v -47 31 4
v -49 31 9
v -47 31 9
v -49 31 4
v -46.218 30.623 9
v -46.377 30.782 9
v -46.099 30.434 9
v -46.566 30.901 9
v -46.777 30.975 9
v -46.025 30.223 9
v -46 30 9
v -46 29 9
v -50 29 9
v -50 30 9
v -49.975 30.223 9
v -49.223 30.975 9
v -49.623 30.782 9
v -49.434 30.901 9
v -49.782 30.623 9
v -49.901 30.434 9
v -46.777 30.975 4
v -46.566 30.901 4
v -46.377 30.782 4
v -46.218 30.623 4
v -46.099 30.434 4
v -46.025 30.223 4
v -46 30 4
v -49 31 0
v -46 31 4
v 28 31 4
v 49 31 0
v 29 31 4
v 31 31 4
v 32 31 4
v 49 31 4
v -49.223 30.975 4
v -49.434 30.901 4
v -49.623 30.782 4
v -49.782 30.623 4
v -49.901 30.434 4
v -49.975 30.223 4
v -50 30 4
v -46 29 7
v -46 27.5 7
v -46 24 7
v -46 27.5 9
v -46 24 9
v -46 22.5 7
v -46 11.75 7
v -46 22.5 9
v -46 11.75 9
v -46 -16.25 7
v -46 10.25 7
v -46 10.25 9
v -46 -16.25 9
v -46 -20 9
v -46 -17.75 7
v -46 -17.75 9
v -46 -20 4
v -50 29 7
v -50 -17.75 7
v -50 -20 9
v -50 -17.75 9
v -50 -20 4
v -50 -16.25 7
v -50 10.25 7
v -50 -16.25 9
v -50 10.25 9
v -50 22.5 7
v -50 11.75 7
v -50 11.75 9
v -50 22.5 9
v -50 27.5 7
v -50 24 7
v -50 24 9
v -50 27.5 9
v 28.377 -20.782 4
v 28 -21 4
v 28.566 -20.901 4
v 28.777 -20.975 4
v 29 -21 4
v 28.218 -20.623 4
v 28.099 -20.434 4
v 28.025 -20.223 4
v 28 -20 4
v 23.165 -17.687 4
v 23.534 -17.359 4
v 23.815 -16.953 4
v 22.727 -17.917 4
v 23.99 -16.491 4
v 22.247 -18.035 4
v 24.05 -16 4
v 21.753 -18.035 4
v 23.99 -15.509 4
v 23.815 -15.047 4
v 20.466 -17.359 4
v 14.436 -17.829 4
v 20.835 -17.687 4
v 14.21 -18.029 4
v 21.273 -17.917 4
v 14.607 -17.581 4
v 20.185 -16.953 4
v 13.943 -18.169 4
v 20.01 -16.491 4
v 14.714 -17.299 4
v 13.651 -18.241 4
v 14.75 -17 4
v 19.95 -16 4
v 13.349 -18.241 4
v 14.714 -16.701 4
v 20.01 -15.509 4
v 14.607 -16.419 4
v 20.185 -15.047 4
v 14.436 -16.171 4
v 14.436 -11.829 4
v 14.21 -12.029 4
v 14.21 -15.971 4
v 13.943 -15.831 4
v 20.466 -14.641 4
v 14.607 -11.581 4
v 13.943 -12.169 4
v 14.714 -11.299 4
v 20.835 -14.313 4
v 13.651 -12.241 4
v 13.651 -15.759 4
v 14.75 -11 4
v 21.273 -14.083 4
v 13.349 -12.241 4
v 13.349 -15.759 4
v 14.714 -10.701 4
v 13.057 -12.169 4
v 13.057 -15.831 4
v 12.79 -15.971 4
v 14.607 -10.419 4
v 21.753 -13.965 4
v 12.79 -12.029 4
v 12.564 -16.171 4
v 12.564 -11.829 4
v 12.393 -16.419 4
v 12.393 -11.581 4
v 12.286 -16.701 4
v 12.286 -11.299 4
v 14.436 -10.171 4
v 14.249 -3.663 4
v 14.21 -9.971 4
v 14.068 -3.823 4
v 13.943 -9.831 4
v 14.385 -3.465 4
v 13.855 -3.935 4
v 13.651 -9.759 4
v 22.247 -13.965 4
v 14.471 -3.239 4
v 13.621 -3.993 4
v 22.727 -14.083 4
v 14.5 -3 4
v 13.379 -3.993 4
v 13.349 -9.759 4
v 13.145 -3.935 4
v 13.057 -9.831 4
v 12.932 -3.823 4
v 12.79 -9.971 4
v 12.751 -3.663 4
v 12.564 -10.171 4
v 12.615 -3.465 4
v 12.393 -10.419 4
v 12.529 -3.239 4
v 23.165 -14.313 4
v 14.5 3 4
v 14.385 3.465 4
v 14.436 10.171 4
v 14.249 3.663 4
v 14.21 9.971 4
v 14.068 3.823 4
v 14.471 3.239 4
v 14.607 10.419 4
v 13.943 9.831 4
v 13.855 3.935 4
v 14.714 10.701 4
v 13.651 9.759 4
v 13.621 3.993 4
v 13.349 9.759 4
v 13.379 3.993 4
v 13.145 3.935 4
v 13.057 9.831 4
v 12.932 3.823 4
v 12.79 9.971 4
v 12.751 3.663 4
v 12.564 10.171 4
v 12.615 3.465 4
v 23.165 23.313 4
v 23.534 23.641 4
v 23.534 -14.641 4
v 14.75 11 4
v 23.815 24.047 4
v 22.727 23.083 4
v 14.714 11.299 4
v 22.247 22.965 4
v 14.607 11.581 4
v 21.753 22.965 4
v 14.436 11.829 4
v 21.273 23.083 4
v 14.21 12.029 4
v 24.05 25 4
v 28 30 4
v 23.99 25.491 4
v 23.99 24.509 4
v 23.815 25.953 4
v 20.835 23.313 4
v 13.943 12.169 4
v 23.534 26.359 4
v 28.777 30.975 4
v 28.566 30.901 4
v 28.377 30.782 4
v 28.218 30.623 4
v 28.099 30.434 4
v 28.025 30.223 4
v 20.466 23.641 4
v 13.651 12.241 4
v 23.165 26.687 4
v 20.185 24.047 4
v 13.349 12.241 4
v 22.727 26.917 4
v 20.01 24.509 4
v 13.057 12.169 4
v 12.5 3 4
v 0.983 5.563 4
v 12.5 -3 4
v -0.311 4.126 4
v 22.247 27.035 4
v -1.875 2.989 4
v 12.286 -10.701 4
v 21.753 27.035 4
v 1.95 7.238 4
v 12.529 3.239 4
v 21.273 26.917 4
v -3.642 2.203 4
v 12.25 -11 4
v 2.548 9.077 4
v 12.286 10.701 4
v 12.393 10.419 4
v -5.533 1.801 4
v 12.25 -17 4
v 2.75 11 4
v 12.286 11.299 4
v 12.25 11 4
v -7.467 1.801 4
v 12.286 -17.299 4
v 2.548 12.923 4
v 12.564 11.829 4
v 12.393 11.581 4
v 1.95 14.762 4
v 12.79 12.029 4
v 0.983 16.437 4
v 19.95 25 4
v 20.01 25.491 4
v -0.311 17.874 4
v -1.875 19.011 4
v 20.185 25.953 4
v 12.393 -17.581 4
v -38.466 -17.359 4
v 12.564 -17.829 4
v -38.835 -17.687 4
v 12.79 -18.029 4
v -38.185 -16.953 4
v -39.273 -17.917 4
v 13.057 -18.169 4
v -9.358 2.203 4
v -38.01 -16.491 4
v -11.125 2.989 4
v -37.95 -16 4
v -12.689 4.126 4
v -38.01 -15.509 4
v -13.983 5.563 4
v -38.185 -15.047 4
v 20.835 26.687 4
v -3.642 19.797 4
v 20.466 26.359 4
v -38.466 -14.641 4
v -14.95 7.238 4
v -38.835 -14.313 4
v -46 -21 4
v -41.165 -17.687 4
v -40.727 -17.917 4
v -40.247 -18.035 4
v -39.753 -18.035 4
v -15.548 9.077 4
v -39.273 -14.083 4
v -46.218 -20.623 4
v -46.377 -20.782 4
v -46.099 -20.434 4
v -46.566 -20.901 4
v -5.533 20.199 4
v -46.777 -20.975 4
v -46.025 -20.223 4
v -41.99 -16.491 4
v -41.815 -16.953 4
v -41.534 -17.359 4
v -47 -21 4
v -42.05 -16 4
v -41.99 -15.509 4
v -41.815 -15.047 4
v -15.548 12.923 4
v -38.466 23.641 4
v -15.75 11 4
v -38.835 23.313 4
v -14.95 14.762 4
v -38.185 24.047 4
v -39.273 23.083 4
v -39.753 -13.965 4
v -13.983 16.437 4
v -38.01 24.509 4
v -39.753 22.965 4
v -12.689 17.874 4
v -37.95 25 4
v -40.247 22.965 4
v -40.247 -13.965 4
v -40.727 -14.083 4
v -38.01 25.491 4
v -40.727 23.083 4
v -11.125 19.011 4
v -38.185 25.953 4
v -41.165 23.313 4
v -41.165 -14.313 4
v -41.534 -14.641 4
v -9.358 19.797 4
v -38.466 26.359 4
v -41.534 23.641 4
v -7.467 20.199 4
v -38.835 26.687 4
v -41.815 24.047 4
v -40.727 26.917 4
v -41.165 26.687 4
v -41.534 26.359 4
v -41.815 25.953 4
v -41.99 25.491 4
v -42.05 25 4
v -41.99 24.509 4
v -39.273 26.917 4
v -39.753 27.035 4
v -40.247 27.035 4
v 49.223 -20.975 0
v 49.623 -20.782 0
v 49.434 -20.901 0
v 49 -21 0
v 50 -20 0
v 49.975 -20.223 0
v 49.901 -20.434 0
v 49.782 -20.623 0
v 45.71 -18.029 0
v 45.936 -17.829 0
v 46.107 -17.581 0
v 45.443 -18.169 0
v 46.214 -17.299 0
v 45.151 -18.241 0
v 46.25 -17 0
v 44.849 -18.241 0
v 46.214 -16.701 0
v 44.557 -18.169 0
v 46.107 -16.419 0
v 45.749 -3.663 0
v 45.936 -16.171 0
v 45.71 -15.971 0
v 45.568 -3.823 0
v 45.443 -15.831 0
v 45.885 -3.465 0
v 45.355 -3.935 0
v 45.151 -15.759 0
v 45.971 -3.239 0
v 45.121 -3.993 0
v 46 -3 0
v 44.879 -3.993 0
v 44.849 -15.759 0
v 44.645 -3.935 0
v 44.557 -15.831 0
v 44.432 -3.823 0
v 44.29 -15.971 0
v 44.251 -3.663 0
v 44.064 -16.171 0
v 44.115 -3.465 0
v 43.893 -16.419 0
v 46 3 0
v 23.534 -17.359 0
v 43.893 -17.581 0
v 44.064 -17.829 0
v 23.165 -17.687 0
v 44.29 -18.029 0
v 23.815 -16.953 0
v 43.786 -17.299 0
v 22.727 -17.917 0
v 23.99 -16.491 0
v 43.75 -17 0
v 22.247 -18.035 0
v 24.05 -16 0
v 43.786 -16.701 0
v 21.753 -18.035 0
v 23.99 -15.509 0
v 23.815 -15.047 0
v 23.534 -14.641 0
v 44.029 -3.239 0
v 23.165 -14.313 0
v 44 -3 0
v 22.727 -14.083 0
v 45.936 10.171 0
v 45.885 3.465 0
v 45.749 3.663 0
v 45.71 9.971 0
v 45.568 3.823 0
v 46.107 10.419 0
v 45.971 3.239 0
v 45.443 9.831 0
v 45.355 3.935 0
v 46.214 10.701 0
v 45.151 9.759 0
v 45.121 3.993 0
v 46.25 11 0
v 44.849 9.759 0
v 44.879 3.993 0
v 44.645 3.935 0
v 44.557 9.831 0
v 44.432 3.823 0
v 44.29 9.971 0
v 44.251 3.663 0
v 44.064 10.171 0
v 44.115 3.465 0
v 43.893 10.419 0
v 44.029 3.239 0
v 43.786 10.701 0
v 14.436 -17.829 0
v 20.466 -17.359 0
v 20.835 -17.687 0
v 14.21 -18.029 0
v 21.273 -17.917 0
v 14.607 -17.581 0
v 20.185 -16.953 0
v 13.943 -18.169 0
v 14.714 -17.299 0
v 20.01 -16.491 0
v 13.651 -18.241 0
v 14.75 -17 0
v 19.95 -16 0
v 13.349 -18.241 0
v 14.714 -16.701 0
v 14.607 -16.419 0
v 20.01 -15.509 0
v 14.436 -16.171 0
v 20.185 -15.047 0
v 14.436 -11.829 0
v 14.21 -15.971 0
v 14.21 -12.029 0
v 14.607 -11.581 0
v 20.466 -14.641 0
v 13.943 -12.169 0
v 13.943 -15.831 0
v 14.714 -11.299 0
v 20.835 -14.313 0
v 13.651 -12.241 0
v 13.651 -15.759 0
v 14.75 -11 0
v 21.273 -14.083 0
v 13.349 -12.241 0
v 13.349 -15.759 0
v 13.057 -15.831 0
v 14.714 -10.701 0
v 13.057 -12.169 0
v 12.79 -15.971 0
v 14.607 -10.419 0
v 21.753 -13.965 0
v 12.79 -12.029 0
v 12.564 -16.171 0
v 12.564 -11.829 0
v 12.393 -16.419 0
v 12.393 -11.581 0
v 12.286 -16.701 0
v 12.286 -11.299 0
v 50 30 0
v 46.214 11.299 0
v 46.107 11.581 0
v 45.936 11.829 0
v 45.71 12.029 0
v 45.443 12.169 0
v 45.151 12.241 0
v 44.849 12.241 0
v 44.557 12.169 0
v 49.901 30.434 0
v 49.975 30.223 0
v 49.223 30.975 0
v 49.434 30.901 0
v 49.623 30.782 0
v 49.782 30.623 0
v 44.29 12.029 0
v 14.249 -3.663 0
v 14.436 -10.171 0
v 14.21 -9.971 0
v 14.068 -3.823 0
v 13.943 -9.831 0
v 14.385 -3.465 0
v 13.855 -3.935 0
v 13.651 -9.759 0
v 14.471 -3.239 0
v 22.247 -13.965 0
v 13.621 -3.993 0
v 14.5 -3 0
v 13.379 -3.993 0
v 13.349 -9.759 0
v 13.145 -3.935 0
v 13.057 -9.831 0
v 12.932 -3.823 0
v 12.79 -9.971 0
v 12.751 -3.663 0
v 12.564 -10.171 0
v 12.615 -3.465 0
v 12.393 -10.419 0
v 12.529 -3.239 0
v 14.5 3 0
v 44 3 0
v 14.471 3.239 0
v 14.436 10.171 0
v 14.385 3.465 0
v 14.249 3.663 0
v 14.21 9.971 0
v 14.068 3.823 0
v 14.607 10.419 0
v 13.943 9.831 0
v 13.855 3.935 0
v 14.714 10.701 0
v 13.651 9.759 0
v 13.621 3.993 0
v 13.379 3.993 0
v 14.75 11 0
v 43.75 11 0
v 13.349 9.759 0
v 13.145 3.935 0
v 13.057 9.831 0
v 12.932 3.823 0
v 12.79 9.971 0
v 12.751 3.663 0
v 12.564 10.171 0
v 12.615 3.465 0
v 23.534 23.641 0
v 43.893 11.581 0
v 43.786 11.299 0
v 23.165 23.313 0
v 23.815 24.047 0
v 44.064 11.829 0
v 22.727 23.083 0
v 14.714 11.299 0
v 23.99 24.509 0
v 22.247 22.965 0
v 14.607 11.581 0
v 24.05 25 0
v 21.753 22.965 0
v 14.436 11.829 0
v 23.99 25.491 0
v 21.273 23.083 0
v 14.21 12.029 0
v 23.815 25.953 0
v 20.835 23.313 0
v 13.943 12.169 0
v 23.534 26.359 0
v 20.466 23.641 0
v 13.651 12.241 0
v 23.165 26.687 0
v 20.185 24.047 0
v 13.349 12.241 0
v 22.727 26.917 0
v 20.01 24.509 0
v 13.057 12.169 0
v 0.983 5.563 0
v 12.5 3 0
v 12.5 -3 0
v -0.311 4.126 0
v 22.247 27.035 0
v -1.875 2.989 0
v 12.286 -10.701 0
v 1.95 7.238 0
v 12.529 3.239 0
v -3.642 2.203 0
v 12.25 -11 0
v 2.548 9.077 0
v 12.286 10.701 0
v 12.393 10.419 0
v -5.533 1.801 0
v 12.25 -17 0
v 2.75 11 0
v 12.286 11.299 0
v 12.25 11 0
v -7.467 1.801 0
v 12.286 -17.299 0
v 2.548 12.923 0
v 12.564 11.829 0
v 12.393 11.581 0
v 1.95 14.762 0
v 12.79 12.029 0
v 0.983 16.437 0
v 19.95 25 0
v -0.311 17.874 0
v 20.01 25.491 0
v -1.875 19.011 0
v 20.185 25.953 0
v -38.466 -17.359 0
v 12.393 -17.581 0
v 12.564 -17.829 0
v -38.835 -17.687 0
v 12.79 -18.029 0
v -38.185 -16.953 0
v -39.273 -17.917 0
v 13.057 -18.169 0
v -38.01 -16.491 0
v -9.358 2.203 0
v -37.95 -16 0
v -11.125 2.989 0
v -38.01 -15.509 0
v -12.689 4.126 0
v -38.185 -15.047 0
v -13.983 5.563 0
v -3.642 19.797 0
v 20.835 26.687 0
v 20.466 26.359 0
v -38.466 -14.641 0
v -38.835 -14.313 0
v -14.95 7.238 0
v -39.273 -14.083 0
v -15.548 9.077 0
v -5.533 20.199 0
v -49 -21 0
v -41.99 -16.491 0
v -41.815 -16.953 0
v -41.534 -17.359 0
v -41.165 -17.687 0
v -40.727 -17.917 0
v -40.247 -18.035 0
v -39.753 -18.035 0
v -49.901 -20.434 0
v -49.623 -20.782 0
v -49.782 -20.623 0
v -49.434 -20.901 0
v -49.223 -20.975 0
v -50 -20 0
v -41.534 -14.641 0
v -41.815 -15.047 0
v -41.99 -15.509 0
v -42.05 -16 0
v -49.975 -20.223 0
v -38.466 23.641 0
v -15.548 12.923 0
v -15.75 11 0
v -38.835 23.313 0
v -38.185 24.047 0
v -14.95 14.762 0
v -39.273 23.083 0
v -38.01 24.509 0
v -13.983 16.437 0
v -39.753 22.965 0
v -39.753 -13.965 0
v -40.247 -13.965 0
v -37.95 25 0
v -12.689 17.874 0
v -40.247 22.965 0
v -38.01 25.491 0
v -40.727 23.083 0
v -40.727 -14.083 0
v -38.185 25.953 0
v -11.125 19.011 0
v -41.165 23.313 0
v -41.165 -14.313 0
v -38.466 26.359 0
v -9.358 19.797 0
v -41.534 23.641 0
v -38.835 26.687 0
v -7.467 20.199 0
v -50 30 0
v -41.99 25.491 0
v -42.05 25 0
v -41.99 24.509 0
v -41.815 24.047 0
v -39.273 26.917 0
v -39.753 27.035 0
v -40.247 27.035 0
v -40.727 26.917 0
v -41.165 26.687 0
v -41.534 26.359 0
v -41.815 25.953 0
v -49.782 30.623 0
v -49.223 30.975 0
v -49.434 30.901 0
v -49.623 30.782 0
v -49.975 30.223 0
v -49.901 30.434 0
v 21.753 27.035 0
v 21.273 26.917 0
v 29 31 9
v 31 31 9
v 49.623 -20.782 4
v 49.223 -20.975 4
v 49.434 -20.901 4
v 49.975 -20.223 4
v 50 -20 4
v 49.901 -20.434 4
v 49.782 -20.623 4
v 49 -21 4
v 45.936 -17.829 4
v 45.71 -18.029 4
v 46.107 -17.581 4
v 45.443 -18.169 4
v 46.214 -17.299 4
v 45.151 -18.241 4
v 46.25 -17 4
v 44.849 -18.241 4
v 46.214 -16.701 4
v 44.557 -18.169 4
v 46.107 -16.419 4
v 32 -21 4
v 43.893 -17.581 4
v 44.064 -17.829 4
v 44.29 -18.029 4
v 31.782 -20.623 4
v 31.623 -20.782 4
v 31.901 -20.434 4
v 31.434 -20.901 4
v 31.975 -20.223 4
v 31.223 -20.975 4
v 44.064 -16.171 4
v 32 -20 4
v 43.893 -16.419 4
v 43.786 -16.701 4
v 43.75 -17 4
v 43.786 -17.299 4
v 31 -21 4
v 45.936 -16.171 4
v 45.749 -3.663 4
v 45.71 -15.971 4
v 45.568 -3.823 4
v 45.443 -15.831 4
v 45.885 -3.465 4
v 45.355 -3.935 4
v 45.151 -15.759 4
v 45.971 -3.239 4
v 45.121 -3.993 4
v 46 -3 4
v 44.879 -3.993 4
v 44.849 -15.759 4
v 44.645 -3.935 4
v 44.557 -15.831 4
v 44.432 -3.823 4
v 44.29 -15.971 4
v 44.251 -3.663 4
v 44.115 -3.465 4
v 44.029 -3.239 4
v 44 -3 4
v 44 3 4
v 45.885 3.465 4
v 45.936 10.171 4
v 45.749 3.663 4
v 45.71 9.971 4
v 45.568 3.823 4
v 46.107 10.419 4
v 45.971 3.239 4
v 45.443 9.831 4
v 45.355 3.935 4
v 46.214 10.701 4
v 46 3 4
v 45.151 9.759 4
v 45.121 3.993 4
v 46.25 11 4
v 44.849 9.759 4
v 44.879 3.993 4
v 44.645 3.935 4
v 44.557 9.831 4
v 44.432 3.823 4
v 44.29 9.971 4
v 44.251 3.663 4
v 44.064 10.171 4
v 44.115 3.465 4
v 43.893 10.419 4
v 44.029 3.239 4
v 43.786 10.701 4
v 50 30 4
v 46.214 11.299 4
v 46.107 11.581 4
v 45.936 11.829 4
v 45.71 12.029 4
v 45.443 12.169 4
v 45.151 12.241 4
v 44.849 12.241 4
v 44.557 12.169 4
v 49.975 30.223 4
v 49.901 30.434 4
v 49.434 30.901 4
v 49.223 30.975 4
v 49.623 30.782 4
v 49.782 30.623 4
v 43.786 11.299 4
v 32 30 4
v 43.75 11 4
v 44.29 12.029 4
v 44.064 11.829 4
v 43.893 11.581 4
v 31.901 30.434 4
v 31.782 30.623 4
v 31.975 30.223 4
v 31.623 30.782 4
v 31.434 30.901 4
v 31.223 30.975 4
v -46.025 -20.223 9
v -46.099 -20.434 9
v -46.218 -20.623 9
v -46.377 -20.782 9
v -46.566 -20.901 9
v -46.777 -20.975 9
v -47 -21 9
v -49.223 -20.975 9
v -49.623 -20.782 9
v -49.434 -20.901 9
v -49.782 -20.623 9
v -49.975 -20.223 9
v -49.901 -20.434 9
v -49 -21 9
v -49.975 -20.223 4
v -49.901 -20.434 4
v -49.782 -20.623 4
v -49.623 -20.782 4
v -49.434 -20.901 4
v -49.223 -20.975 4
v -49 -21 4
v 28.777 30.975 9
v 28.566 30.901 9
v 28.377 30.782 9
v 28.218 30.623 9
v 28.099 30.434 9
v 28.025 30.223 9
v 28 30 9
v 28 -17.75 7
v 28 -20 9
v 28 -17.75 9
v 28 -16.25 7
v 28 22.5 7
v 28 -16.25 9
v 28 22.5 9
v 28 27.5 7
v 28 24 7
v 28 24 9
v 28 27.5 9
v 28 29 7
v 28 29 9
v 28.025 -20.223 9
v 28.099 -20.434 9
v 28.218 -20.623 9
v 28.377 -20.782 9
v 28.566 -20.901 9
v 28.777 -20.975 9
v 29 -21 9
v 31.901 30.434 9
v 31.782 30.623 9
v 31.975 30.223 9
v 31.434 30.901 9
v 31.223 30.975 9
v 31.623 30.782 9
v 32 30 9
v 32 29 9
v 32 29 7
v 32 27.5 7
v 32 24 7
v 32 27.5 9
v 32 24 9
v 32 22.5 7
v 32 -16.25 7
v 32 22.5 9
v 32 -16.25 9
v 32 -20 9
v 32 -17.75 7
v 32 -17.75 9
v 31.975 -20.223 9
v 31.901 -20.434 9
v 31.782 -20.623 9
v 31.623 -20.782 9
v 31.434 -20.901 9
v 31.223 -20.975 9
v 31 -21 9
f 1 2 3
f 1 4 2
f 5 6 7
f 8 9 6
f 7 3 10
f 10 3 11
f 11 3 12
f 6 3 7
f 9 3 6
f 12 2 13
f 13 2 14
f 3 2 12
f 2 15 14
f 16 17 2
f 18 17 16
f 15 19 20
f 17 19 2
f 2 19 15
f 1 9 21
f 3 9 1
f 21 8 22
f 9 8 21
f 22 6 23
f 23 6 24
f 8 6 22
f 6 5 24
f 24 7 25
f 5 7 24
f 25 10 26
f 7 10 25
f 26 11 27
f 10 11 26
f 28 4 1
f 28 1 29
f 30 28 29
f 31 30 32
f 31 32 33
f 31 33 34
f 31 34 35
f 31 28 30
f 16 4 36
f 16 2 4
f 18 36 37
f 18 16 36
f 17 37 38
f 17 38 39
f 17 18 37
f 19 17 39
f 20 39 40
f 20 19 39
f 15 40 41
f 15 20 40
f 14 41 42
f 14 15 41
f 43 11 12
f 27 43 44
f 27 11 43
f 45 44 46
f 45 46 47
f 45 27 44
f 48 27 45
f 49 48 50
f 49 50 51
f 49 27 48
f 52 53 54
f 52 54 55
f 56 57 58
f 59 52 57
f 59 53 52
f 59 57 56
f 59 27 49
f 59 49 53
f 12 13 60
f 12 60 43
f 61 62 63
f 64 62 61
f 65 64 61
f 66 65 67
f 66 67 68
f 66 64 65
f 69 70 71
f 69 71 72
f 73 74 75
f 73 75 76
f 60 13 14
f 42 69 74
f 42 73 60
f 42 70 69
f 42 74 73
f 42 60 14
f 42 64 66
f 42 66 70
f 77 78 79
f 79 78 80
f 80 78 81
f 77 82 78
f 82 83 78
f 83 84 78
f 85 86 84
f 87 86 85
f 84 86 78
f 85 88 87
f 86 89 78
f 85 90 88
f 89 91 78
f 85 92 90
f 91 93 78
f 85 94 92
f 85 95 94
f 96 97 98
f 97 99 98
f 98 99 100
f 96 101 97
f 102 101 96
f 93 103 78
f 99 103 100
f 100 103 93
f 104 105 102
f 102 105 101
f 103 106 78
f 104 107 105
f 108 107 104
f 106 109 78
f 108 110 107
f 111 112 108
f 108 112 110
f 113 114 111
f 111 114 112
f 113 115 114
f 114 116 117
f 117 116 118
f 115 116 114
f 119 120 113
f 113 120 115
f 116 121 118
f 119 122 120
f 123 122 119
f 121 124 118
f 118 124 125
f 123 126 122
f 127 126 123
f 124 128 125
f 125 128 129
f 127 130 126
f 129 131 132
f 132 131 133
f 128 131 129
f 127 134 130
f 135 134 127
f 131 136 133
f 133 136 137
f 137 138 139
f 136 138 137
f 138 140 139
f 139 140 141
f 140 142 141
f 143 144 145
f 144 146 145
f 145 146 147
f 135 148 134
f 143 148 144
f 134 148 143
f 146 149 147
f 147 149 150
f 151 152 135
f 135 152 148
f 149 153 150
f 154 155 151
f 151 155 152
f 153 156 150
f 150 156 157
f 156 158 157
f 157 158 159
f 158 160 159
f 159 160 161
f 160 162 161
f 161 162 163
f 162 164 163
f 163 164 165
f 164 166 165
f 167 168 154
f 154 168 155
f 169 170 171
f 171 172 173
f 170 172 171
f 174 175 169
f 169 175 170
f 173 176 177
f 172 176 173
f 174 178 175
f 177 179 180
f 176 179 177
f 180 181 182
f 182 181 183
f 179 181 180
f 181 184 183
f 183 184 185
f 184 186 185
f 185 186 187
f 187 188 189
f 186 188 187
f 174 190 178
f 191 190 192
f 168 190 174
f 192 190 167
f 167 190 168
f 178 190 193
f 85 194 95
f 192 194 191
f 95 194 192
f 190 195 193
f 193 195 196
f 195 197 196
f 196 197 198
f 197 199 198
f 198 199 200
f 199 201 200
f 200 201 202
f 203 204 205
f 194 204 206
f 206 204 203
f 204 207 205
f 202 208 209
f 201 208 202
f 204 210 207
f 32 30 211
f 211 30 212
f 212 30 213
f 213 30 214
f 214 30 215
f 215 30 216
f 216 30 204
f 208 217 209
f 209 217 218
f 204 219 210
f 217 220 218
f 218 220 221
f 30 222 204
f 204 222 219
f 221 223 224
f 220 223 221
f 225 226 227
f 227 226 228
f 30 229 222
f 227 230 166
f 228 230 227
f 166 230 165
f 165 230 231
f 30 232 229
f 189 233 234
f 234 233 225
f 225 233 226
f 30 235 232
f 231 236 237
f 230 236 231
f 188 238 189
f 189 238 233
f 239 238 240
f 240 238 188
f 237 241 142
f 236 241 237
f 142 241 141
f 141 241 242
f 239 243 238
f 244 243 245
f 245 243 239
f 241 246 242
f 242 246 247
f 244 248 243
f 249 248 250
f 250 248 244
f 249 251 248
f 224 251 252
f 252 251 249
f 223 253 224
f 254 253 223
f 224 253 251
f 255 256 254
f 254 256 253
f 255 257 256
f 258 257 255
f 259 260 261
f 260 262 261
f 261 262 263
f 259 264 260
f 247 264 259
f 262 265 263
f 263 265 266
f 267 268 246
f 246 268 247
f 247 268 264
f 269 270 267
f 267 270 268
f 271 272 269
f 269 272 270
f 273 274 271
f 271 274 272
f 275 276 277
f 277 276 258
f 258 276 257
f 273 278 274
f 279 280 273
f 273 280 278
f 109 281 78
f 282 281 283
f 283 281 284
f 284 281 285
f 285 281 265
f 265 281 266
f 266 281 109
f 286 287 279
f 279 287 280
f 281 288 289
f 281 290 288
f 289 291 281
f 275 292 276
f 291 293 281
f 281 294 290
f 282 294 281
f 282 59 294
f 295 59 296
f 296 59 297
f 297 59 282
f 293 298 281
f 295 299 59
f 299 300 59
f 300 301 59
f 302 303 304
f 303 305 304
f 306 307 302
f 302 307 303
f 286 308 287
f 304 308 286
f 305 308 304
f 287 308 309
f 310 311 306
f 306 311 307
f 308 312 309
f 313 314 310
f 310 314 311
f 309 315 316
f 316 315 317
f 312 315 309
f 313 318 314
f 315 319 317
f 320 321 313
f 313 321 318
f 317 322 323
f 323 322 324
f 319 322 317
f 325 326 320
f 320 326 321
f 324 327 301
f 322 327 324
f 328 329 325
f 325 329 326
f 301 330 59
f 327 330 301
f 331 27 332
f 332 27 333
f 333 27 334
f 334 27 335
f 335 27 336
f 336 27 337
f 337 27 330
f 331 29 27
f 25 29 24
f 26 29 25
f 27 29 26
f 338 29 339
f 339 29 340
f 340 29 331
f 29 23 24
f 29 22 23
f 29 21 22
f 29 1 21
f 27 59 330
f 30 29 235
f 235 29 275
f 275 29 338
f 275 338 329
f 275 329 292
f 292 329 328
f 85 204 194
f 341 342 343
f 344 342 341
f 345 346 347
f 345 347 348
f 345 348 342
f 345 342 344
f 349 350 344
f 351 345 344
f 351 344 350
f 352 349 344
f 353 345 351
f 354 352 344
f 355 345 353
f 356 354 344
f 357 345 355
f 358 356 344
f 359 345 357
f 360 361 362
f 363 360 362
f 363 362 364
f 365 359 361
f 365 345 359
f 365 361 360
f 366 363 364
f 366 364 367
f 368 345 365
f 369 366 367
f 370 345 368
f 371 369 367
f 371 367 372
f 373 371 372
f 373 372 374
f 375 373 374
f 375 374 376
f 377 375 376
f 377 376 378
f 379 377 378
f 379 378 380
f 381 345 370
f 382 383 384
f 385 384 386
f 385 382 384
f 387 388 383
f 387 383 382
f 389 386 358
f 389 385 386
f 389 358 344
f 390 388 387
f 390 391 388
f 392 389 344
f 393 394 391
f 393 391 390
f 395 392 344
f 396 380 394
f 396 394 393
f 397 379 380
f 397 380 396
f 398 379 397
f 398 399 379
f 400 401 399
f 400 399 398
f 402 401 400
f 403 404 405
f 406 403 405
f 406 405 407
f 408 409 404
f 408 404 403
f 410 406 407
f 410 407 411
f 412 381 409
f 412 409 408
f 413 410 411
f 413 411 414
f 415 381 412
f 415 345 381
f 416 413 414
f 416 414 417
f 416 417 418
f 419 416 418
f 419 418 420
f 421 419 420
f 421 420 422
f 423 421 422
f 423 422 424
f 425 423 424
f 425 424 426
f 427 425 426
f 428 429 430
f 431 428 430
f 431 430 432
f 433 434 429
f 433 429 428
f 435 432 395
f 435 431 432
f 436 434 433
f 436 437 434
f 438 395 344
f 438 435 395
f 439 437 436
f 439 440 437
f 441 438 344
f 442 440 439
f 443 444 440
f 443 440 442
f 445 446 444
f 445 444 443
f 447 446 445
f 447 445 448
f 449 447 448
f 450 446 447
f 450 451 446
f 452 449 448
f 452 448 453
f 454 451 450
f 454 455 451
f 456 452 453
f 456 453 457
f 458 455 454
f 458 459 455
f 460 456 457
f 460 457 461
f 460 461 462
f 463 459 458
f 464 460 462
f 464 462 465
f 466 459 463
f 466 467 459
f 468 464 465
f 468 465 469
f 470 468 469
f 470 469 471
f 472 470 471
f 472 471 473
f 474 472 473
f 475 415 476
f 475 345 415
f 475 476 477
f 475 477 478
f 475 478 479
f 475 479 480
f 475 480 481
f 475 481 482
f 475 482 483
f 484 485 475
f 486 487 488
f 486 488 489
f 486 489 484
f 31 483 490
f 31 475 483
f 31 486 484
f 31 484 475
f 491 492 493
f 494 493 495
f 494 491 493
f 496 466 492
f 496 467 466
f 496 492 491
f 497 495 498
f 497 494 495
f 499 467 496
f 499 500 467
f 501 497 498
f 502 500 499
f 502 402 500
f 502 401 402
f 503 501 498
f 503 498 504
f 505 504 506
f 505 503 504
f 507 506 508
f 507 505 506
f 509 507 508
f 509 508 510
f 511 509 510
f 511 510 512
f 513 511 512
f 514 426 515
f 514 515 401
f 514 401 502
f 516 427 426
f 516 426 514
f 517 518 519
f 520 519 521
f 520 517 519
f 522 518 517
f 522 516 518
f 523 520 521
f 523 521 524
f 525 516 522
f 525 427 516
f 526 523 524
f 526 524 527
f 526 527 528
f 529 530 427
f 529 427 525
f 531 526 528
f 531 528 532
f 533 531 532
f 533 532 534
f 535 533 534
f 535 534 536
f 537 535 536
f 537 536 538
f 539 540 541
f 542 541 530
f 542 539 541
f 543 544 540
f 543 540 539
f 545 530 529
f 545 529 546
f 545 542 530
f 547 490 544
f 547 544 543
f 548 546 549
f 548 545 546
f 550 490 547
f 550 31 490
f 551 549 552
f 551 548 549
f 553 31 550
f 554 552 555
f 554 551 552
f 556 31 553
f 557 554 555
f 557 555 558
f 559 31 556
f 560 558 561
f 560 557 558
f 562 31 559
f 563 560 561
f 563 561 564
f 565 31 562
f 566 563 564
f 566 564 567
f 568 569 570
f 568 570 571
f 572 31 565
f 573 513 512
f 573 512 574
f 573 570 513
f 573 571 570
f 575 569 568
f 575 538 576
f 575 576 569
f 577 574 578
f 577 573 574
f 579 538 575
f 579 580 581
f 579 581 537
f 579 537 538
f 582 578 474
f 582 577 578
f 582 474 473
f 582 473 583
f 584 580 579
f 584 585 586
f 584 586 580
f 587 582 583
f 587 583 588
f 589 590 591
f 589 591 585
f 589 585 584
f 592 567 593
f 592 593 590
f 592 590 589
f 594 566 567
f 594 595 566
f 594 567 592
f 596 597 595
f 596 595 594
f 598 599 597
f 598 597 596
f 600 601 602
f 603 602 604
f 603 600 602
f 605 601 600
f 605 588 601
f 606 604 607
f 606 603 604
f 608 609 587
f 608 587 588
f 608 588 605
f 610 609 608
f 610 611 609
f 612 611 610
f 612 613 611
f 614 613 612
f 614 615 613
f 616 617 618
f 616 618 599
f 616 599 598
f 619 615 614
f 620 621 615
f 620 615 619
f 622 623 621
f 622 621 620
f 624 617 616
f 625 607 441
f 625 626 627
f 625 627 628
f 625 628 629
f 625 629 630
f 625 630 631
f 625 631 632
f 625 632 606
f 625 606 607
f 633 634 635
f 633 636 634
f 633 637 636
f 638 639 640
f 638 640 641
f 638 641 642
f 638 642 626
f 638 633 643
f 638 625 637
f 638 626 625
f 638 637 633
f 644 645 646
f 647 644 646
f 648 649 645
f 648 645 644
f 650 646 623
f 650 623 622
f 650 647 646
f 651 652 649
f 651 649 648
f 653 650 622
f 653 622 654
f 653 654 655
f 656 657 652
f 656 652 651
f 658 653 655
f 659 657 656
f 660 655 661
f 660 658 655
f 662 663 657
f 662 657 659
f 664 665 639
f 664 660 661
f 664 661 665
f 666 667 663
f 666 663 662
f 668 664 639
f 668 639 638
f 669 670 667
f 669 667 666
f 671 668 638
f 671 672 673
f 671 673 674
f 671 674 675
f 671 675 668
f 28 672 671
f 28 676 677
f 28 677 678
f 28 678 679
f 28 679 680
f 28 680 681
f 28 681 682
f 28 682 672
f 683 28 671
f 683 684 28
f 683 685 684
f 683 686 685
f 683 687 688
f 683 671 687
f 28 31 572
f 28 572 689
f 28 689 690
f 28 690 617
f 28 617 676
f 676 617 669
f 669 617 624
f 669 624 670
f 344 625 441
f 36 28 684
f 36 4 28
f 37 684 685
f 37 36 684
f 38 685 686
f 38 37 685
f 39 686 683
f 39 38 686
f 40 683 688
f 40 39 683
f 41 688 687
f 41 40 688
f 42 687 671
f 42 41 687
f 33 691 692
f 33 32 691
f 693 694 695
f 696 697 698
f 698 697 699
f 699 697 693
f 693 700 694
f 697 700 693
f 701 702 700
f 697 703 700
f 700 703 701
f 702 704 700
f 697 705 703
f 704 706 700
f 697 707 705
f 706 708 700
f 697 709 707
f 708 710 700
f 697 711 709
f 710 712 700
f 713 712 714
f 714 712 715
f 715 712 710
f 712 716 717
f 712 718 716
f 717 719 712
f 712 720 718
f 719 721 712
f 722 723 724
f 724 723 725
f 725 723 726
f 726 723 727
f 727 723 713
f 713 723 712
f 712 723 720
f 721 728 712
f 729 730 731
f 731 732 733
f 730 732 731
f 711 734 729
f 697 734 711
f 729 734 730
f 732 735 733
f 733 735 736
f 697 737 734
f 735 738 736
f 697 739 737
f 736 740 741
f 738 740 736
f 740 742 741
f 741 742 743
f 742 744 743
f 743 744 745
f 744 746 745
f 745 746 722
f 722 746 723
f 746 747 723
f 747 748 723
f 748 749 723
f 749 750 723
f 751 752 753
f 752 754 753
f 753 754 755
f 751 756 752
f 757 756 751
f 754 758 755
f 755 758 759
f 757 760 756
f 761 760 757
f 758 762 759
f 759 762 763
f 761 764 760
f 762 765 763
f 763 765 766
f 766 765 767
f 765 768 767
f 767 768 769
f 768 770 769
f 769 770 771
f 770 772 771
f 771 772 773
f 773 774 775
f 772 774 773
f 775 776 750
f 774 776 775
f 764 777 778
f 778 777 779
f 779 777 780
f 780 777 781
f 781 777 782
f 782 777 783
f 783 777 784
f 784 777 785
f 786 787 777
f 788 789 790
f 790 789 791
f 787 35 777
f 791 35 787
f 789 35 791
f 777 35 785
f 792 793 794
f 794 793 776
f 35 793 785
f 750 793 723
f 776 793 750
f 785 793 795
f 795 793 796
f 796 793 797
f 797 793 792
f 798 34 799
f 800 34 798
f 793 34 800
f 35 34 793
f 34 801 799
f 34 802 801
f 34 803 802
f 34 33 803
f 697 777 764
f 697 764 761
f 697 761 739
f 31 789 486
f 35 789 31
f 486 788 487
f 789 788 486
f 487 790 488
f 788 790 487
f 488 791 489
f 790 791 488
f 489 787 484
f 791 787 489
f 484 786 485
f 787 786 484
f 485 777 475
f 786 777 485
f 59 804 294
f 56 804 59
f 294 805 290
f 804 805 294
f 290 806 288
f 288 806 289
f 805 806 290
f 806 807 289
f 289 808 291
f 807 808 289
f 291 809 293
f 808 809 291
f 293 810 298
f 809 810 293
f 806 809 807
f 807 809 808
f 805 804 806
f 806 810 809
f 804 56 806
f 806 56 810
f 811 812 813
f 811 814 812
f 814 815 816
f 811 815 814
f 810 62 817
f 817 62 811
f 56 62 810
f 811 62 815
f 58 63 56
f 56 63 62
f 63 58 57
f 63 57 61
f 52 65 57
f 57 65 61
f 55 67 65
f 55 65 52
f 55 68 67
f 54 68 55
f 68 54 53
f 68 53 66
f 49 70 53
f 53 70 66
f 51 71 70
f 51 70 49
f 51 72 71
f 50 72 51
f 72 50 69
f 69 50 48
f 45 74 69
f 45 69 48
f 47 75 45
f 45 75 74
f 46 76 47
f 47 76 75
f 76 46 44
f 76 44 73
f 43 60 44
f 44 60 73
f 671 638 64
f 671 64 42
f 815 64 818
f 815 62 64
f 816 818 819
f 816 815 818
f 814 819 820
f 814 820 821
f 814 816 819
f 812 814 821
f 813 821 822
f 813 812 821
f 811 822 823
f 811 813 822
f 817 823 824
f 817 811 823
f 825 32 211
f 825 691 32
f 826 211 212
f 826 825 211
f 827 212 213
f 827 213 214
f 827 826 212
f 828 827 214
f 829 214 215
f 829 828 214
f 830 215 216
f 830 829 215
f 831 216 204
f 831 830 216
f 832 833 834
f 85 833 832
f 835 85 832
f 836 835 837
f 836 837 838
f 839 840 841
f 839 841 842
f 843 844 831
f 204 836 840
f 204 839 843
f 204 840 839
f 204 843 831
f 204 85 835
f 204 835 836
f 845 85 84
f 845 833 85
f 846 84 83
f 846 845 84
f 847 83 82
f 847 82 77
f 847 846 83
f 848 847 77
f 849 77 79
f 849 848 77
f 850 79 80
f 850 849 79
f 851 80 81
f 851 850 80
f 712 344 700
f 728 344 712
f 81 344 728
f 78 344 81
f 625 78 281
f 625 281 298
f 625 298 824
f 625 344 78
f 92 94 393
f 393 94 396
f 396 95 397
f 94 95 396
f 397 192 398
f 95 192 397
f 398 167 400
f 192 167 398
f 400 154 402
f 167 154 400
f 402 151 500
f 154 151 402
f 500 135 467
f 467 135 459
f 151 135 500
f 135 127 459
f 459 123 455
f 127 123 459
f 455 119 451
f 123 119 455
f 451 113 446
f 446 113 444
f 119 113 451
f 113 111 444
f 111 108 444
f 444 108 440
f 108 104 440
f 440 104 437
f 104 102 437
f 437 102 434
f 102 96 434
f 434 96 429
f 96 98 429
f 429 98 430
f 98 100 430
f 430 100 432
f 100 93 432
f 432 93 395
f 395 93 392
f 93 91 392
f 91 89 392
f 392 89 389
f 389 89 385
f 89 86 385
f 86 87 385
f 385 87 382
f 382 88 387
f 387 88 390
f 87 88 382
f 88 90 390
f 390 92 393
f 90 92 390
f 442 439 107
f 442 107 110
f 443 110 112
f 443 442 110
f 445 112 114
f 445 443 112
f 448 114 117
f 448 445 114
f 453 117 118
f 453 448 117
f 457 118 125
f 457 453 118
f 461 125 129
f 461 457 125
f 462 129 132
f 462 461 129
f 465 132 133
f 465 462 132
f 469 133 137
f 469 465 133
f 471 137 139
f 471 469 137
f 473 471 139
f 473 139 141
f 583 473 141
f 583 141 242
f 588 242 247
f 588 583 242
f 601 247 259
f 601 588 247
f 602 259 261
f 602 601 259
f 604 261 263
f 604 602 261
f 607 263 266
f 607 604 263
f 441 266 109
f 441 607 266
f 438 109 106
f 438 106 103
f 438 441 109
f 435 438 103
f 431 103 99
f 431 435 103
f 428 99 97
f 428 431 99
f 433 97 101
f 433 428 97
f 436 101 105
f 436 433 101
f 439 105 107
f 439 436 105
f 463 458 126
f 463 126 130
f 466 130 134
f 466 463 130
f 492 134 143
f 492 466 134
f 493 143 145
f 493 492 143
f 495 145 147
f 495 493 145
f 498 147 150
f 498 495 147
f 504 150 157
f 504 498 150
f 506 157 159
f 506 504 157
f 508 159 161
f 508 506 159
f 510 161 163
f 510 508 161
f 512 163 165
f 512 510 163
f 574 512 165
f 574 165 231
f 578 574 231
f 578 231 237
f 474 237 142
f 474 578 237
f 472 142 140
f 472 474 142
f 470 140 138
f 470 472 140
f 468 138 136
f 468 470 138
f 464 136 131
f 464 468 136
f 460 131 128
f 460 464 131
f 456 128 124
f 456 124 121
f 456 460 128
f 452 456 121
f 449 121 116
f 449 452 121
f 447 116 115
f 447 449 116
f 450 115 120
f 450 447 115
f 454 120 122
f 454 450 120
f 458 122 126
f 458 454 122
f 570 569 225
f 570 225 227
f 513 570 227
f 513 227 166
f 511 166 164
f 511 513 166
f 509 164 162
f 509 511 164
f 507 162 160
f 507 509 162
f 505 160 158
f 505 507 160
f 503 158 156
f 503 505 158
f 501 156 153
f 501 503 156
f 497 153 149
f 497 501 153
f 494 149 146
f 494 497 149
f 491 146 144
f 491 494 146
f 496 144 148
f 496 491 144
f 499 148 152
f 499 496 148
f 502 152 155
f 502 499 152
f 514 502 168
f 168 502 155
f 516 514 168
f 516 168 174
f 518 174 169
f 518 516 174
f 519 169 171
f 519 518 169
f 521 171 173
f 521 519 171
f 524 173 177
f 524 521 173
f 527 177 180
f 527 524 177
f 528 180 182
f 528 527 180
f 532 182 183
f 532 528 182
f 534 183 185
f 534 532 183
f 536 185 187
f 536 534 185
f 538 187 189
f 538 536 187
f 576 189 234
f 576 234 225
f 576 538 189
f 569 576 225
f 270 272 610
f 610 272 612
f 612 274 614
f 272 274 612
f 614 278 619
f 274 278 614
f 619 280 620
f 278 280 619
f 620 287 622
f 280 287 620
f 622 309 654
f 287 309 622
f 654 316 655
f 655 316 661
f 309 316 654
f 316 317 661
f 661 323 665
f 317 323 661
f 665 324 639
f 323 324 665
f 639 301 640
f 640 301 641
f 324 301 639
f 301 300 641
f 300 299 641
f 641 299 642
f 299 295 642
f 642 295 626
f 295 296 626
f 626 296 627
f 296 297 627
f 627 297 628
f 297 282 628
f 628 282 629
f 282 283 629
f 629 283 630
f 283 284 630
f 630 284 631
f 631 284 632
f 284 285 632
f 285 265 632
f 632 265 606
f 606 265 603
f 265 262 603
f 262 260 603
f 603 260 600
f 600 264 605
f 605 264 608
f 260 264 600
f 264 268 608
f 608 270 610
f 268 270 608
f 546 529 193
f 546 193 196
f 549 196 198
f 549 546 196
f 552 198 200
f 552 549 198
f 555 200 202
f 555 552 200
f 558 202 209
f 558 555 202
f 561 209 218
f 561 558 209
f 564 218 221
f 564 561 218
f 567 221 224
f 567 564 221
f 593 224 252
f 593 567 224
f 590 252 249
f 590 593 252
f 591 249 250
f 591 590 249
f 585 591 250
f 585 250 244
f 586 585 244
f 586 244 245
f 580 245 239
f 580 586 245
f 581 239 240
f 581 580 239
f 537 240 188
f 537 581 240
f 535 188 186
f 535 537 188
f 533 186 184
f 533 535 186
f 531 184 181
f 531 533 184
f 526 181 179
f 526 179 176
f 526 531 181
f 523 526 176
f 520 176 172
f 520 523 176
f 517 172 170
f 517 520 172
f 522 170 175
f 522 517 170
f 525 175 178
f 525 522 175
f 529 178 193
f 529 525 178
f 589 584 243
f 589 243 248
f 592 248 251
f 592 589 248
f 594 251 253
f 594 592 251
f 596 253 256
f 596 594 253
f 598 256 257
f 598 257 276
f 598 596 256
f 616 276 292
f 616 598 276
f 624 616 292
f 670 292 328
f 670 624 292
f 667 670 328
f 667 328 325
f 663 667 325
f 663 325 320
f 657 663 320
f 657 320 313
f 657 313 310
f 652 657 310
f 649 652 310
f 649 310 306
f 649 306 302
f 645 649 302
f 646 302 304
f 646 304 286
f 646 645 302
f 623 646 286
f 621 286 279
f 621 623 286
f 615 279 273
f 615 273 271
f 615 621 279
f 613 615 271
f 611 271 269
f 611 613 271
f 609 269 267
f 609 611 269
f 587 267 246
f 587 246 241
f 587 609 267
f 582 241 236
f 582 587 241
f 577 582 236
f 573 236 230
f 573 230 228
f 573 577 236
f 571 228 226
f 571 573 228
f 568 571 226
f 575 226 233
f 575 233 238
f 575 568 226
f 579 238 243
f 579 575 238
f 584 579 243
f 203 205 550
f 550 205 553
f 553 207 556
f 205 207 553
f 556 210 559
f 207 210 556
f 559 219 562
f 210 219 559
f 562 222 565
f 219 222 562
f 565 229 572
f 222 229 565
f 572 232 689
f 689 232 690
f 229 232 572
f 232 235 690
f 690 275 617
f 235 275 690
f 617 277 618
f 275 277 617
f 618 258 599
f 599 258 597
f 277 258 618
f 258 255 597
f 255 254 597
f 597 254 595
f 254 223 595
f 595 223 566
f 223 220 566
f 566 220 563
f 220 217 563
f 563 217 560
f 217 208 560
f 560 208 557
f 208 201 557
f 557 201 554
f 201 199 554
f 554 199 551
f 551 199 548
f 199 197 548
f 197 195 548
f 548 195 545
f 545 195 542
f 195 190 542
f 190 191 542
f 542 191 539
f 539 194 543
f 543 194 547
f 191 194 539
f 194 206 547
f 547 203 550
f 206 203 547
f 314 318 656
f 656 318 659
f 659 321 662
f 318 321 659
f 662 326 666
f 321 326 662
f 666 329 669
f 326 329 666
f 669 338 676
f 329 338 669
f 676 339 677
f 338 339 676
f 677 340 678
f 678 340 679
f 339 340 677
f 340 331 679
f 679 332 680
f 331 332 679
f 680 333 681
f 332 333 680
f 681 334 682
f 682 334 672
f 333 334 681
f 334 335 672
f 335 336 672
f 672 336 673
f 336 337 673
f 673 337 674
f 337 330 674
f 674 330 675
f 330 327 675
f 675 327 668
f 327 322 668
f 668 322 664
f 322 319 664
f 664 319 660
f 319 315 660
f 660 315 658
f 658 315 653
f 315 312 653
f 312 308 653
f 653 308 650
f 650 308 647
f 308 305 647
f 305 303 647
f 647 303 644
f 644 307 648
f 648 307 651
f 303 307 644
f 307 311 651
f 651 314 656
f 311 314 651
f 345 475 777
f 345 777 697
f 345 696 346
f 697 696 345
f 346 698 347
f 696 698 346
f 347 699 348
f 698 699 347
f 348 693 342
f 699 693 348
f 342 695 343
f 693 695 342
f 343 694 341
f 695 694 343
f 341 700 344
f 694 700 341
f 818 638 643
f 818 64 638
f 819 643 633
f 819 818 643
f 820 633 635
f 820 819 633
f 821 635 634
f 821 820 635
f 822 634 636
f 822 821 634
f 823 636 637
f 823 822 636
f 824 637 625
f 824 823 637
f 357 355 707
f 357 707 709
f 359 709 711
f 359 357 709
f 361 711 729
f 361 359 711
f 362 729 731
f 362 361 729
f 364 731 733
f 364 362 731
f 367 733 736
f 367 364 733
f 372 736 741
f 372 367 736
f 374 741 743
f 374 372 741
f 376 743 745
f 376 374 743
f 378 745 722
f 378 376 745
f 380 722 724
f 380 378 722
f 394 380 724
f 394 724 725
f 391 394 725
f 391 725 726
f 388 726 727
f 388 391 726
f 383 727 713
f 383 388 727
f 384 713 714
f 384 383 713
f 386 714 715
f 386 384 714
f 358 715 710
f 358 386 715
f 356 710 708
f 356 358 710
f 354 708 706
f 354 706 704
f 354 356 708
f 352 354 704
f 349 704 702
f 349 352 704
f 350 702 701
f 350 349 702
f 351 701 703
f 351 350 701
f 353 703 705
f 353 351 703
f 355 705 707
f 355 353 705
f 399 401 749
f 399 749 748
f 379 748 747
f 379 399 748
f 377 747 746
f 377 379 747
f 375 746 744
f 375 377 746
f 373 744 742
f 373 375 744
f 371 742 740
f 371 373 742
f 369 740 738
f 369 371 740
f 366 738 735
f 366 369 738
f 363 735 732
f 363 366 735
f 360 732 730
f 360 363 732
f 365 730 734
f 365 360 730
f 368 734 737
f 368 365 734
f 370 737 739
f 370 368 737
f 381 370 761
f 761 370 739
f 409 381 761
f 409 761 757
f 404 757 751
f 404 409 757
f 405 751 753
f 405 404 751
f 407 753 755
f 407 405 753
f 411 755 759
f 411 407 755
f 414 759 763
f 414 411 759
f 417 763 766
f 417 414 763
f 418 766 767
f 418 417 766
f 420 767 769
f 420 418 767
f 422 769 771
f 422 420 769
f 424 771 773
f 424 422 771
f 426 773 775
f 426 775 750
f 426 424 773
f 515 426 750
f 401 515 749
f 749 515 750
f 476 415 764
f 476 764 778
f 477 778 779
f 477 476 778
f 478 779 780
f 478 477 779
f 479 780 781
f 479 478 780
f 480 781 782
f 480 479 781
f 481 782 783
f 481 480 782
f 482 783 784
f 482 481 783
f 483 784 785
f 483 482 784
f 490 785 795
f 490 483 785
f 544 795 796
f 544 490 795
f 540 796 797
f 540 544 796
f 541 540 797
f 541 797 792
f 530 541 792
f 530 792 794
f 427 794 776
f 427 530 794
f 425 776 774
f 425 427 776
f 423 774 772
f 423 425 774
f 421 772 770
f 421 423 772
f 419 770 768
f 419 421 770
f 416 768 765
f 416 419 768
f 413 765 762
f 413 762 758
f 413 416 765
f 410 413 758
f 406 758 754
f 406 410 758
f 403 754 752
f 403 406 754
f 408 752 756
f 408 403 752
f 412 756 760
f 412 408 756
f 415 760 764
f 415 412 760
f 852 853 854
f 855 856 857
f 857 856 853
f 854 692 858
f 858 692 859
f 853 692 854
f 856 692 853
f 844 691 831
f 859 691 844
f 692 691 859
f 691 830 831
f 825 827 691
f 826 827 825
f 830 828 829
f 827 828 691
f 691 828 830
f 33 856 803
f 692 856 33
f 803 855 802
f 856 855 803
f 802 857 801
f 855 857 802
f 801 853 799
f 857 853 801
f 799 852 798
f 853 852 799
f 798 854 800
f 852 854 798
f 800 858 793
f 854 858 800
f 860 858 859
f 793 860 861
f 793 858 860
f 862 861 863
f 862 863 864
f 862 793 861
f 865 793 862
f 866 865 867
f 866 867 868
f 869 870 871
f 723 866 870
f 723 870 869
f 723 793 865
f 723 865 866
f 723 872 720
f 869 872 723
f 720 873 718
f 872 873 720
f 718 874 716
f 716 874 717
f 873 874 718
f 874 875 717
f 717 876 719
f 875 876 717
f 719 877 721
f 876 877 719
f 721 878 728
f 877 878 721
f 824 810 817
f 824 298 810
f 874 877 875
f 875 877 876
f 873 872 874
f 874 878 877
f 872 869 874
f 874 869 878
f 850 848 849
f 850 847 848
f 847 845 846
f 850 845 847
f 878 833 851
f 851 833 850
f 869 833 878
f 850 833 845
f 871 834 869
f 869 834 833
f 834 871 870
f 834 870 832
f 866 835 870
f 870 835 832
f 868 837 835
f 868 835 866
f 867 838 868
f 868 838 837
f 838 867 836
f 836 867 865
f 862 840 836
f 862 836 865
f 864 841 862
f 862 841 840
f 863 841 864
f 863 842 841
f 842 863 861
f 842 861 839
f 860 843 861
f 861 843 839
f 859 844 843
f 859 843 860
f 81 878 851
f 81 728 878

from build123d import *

# Parameters (mm, degrees)
SKETCH_W        = 100
SKETCH_H        = 52
SKETCH_R        = 1.25
SKETCH_R_2      = 9.25
PAD_DEPTH       = 4
SKETCH001_W     = 4
SKETCH001_H     = 52
PAD001_DEPTH    = 5
SKETCH002_W     = 82
SKETCH002_H     = 1.5
POCKET_DEPTH    = 2
SKETCH003_R     = 2.05
POCKET001_DEPTH = 5
FILLET_R        = 1
FILLET001_R     = 1
SKETCH004_W     = 4
SKETCH004_H     = 1.5
POCKET002_DEPTH = 2


with BuildPart() as part:
    # Sketch → Pad (new body)
    with BuildSketch(Plane.XY):
        with Locations((0, 5)):
            Rectangle(SKETCH_W, SKETCH_H)
        with Locations((13.5, 11)):
            Circle(SKETCH_R, mode=Mode.SUBTRACT)
        with Locations((13.5, -11)):
            Circle(SKETCH_R, mode=Mode.SUBTRACT)
        with Locations((13.5, -17)):
            Circle(SKETCH_R, mode=Mode.SUBTRACT)
        with Locations((45, -17)):
            Circle(SKETCH_R, mode=Mode.SUBTRACT)
        with Locations((45, 11)):
            Circle(SKETCH_R, mode=Mode.SUBTRACT)
        with Locations((-6.5, 11)):
            Circle(SKETCH_R_2, mode=Mode.SUBTRACT)
        with BuildLine():
            Line((46, 3), (46, -3))
            ThreePointArc((44, -3), (45, -4), (46, -3))
            Line((44, -3), (44, 3))
            ThreePointArc((46, 3), (45, 4), (44, 3))
        make_face(mode=Mode.SUBTRACT)
        with BuildLine():
            Line((14.5, 3), (14.5, -3))
            ThreePointArc((12.5, -3), (13.5, -4), (14.5, -3))
            Line((12.5, 3), (12.5, -3))
            ThreePointArc((14.5, 3), (13.5, 4), (12.5, 3))
        make_face(mode=Mode.SUBTRACT)
    extrude(amount=PAD_DEPTH)

    # Sketch001 (on Face20 of Pad) → Pad001 (join)
    with BuildSketch(Plane.XY.offset(4)):
        with Locations((-48, 5)):
            Rectangle(SKETCH001_W, SKETCH001_H)
        with Locations((30, 5)):
            Rectangle(SKETCH001_W, SKETCH001_H)
    extrude(amount=PAD001_DEPTH)

    # Sketch002 (on Face26 of Pad001) → Pocket (cut)
    with BuildSketch(Plane.XY.offset(9)):
        with Locations((-9, 28.25)):
            Rectangle(SKETCH002_W, SKETCH002_H)
        with Locations((-9, 23.25)):
            Rectangle(SKETCH002_W, SKETCH002_H)
        with Locations((-9, -17)):
            Rectangle(SKETCH002_W, SKETCH002_H)
    extrude(amount=-POCKET_DEPTH, mode=Mode.SUBTRACT)

    # Sketch003 (on Face6 of Pocket) → Pocket001 (cut)
    with BuildSketch(Plane.XY.offset(4)):
        with Locations((-40, 25)):
            Circle(SKETCH003_R)
        with Locations((-40, -16)):
            Circle(SKETCH003_R)
        with Locations((22, 25)):
            Circle(SKETCH003_R)
        with Locations((22, -16)):
            Circle(SKETCH003_R)
    extrude(amount=-POCKET001_DEPTH, mode=Mode.SUBTRACT)

    # Fillet
    fillet_edges = [part.edges().sort_by_distance(p)[0] for p in [
        (-50, -21, 2),
        (50, -21, 2),
        (50, 31, 2),
        (-50, 31, 2),
    ]]
    fillet(fillet_edges, radius=FILLET_R)

    # Fillet001
    fillet001_edges = [part.edges().sort_by_distance(p)[0] for p in [
        (-46, 31, 6.5),
        (-46, -21, 6.5),
        (28, 31, 6.5),
        (32, 31, 6.5),
        (28, -21, 6.5),
        (32, -21, 6.5),
    ]]
    fillet(fillet001_edges, radius=FILLET001_R)

    # Sketch004 (on Face41 of Fillet001) → Pocket002 (cut)
    with BuildSketch(Plane.XY.offset(9)):
        with Locations((-48, 11)):
            Rectangle(SKETCH004_W, SKETCH004_H)
    extrude(amount=-POCKET002_DEPTH, mode=Mode.SUBTRACT)


solid = part.part
